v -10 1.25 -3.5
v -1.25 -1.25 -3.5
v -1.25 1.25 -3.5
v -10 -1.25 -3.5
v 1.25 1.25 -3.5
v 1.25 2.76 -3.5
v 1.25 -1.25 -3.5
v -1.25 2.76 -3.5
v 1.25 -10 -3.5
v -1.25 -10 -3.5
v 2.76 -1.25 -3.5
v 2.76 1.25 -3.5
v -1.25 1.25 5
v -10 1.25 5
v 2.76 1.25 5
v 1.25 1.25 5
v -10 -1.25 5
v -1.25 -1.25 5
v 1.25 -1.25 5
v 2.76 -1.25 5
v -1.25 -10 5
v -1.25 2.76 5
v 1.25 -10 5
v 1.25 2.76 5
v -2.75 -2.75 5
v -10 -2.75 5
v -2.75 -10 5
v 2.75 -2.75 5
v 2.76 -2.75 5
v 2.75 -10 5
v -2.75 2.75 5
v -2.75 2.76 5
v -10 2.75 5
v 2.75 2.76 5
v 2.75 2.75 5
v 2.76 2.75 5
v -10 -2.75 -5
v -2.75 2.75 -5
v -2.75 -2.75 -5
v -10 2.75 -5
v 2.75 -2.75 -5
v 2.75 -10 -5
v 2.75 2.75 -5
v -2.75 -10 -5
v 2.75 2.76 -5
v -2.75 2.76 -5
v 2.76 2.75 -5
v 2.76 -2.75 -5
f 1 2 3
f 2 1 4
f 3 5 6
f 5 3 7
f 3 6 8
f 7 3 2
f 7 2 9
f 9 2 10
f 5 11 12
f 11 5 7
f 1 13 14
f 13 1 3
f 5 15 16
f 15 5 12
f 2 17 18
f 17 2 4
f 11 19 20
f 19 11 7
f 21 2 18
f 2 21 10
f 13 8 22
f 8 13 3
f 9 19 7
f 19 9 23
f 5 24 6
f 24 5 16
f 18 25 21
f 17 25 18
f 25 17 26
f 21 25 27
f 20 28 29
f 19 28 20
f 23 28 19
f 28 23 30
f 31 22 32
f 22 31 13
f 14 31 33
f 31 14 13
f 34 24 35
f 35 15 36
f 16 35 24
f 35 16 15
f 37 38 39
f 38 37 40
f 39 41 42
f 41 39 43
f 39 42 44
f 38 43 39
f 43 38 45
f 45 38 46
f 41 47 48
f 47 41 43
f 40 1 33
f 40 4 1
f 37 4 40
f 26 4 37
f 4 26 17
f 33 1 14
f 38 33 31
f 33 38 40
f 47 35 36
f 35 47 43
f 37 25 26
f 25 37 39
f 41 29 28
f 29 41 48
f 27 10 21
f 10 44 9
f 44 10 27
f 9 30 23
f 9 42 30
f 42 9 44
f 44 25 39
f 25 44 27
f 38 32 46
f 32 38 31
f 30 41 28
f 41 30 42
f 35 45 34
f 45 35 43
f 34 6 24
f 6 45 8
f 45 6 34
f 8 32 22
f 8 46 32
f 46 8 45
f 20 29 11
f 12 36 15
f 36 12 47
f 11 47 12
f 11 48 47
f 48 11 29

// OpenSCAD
wall_thickness = 1.5; 
wood_thickness = 2;
smidge = .01;

length = 20;
height = 10;
spacing = length + 10;

gap_width = wood_thickness + 0.5;
width = (wall_thickness * 2) + gap_width;
gap_length = length + 2;
one_arm = length/2 - width/2;

module solid(rotation) {
  rotate(rotation) {
    cube([length, width, height], center = true);
  }
}

module hollow(rotation) {
  rotate(rotation) {
    cube([gap_length, gap_width, height], center = true);
  }
}

module outside() {
  union() {
    solid(0);
    solid(90);
  }
}
 
module inside() {
  union() {
    translate([0, 0, wall_thickness]) {
      hollow(0); 
      hollow(90);
    }
  }
}

module bracket() {
  difference() {
    outside();
    inside();
  }
}

module t_bracket_slicer() {
  translate([-length/2, gap_width/2 + wall_thickness + smidge, - height/2 - smidge]) { 
    cube([length + smidge, one_arm, height + (smidge)], center = false);
  }
}

module l_bracket_slicer() {
  translate([gap_width/2 + wall_thickness + smidge, - (gap_width/2 + wall_thickness), -height/2 - smidge]) {
    cube([length + smidge, one_arm, height + (smidge)], center = false);
  }
}

difference() {
  bracket();
  t_bracket_slicer();
  l_bracket_slicer();
}
